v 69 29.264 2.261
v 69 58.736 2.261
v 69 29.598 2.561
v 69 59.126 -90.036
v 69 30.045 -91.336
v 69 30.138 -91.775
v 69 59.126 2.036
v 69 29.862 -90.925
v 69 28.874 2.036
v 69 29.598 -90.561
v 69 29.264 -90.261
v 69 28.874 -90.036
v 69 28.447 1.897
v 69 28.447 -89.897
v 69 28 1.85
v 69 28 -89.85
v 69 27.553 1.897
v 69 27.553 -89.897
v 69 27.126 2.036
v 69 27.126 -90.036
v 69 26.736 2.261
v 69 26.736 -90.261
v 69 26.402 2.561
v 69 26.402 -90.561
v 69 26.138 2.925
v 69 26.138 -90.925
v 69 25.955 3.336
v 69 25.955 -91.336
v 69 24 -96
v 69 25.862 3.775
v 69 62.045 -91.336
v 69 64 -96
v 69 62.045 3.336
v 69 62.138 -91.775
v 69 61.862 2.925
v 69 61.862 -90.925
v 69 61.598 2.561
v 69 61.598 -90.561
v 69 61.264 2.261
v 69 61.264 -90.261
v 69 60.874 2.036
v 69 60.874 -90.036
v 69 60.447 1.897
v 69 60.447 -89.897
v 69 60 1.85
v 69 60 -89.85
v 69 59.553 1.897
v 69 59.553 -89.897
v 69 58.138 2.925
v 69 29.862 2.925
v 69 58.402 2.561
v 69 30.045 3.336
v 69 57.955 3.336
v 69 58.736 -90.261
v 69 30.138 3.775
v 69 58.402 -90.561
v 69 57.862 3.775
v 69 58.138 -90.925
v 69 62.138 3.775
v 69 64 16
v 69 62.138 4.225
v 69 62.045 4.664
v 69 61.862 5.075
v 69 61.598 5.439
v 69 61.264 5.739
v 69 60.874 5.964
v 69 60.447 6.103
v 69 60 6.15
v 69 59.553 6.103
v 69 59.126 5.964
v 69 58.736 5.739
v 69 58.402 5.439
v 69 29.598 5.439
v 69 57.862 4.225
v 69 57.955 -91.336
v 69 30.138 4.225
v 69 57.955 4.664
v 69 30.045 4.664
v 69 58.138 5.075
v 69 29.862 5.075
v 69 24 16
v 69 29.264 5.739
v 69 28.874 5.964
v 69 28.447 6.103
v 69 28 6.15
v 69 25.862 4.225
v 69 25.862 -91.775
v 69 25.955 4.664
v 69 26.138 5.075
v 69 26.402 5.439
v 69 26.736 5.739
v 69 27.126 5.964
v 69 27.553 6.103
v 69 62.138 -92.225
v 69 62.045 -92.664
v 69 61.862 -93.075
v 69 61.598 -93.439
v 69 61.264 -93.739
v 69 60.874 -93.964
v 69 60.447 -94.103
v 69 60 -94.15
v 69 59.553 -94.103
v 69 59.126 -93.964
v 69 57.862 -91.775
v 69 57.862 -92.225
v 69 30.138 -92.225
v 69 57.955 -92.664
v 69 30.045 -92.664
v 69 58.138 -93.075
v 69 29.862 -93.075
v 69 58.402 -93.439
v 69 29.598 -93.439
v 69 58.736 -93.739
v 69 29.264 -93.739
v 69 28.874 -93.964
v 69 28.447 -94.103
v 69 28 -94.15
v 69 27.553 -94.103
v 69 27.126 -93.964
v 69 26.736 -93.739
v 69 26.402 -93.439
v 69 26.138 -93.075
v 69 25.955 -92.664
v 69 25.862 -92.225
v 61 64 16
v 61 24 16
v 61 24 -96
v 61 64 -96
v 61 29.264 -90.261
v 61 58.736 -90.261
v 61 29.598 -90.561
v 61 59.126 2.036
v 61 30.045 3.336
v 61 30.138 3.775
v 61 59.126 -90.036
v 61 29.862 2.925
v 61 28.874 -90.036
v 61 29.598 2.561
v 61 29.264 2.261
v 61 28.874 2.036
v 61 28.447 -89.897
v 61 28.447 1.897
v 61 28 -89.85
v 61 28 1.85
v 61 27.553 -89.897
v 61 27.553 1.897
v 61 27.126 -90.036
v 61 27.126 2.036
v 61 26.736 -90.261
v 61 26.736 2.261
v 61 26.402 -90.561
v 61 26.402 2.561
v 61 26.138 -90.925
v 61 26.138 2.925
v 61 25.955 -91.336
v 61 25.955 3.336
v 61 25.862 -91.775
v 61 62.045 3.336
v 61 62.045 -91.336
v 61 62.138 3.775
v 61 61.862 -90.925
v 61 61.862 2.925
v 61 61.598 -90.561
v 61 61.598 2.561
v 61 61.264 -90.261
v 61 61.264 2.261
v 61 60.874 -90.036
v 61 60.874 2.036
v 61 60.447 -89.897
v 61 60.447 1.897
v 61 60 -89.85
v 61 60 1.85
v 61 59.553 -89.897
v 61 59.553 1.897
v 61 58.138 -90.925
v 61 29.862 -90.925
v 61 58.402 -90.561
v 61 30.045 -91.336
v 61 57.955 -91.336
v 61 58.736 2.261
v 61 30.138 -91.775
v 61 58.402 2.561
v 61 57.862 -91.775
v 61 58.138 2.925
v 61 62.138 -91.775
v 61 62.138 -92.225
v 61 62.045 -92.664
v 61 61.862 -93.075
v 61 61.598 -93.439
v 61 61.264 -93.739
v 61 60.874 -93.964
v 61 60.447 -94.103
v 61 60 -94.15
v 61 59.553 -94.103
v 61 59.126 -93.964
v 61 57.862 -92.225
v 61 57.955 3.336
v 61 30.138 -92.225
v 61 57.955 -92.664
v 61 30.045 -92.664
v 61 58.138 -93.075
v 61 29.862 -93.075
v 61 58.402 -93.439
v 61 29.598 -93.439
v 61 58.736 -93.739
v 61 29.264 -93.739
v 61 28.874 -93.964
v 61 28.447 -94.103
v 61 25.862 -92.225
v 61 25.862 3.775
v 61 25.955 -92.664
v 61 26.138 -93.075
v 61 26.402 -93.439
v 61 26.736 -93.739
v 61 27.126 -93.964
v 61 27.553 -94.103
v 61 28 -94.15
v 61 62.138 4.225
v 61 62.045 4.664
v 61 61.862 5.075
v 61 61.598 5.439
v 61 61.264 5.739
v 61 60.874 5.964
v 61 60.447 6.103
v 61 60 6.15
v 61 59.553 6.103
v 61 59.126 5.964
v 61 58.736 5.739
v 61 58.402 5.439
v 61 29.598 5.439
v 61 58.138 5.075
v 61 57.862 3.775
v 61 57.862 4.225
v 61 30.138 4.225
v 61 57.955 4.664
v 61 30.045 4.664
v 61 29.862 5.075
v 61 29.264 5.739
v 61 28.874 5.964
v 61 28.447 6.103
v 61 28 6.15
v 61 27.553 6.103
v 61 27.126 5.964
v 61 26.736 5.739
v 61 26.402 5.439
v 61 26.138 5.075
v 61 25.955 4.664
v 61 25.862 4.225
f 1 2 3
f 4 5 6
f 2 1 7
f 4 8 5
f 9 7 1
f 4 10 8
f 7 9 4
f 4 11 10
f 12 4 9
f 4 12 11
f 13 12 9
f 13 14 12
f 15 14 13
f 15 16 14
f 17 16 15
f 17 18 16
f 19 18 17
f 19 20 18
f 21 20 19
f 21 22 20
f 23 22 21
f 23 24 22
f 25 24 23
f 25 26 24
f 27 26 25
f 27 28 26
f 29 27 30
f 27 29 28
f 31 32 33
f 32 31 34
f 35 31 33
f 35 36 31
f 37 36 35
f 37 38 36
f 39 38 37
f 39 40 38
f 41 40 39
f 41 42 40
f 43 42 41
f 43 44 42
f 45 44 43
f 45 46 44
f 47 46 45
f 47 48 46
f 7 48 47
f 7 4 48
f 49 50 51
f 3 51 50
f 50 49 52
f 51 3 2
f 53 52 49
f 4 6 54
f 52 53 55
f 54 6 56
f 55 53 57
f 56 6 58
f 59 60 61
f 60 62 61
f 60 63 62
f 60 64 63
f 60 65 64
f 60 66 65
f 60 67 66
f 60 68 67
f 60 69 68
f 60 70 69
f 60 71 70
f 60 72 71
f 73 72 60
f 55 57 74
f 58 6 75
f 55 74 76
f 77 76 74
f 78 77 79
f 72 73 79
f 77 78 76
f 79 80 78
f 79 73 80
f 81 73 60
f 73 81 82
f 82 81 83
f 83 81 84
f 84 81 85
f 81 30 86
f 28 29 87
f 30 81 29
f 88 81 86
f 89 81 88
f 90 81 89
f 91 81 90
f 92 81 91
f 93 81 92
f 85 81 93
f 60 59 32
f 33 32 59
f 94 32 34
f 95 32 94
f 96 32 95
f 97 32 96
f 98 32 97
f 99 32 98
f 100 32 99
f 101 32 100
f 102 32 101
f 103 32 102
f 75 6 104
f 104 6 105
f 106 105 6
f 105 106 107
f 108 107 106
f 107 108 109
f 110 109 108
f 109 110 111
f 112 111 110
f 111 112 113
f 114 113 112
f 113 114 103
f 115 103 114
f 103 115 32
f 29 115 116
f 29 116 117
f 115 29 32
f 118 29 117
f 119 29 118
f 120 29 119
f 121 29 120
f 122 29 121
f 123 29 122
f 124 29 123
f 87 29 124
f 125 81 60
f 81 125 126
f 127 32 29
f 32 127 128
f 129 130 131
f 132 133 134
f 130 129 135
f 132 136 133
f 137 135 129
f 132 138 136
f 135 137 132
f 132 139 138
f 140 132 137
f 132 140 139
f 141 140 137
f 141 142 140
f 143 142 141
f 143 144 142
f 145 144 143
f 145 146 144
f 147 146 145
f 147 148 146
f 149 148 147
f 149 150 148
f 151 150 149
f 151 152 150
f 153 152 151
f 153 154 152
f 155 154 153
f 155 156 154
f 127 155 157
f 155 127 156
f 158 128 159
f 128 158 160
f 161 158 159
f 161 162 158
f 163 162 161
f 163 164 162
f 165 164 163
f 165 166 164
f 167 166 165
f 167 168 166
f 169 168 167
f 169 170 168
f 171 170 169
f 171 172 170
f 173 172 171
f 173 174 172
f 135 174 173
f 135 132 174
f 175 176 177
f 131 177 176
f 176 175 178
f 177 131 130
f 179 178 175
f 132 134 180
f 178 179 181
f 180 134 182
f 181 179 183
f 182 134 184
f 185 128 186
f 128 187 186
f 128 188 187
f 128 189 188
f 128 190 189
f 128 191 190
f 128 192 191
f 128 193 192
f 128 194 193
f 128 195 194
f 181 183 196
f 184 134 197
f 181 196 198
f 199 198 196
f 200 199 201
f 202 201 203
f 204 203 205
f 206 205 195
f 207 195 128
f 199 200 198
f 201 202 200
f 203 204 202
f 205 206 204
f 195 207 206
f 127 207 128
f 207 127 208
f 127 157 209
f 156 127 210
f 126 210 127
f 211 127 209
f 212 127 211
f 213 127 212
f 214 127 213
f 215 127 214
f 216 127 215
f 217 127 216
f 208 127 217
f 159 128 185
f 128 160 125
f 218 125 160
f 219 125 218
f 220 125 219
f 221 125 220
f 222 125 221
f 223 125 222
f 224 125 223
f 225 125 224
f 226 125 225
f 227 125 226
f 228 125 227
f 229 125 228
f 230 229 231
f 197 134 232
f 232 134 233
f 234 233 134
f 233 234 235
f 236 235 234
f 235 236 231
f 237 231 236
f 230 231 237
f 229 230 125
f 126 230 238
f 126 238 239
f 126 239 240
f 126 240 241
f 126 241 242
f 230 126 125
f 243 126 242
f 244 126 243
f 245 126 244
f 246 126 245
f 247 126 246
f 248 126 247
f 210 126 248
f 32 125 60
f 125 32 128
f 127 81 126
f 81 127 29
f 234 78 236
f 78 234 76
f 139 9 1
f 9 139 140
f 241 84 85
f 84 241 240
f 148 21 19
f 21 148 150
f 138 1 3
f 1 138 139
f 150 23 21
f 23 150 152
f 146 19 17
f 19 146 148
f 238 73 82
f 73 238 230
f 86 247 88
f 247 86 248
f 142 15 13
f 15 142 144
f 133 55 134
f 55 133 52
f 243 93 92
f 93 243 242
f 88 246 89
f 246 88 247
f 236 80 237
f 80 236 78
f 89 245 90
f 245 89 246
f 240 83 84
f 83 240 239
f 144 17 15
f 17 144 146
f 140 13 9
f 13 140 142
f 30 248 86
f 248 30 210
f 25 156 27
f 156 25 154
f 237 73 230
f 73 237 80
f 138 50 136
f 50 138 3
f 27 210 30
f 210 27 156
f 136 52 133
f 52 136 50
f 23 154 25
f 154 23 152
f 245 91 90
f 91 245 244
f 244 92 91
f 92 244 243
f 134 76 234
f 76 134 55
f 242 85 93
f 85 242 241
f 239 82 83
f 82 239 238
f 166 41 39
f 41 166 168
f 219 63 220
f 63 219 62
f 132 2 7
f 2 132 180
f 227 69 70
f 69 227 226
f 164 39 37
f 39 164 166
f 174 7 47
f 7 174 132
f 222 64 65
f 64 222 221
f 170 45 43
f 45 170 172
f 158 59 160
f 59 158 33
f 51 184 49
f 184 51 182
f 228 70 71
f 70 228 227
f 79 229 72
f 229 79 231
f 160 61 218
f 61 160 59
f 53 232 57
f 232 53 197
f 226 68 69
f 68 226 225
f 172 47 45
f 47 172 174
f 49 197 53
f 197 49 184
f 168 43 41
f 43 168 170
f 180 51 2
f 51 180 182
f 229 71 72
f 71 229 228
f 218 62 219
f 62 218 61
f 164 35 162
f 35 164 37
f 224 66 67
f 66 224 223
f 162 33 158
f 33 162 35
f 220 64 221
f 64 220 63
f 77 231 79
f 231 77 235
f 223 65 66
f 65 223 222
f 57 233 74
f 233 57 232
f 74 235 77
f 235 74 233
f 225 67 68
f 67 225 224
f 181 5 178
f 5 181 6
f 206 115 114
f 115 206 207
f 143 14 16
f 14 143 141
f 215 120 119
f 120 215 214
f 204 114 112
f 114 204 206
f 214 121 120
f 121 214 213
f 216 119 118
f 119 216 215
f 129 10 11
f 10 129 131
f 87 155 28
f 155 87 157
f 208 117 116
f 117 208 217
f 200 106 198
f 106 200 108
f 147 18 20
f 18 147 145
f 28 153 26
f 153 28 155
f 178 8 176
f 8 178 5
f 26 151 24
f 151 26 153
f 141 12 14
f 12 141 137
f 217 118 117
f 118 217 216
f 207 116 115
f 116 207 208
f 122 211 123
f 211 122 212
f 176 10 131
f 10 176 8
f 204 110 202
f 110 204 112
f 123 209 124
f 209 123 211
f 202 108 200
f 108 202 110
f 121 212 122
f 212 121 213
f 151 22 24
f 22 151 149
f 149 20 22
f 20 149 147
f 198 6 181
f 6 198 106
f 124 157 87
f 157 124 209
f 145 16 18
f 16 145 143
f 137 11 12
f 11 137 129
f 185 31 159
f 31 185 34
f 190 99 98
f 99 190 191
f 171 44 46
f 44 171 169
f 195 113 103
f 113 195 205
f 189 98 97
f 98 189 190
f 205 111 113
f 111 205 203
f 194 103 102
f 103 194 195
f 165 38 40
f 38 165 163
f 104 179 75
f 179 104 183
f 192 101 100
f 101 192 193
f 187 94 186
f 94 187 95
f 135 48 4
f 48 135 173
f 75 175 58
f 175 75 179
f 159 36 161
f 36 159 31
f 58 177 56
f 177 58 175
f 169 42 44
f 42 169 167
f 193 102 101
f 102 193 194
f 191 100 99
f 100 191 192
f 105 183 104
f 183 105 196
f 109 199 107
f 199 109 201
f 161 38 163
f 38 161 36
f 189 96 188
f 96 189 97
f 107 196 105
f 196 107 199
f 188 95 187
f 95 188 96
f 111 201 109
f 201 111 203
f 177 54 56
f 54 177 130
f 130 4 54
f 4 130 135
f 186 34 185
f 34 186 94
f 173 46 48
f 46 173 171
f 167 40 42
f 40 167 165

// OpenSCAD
difference() {
union() {
    // front part
    translate([61,24,-96])
    cube([8,40,112]);
}
    // top left hole
    translate([-4,28,4])
    rotate([0,90,0])
    cylinder(r=2.15,90, $fn=30);

    // top right hole
    translate([-4,60,4])
    rotate([0,90,0])
    cylinder(r=2.15,90, $fn=30);

    // bottom left hole
    translate([-4,28,-92])
    rotate([0,90,0])
    cylinder(r=2.15,90, $fn=30);

    // bottom right hole
    translate([-4,60,-92])
    rotate([0,90,0])
    cylinder(r=2.15,90, $fn=30);
} 
